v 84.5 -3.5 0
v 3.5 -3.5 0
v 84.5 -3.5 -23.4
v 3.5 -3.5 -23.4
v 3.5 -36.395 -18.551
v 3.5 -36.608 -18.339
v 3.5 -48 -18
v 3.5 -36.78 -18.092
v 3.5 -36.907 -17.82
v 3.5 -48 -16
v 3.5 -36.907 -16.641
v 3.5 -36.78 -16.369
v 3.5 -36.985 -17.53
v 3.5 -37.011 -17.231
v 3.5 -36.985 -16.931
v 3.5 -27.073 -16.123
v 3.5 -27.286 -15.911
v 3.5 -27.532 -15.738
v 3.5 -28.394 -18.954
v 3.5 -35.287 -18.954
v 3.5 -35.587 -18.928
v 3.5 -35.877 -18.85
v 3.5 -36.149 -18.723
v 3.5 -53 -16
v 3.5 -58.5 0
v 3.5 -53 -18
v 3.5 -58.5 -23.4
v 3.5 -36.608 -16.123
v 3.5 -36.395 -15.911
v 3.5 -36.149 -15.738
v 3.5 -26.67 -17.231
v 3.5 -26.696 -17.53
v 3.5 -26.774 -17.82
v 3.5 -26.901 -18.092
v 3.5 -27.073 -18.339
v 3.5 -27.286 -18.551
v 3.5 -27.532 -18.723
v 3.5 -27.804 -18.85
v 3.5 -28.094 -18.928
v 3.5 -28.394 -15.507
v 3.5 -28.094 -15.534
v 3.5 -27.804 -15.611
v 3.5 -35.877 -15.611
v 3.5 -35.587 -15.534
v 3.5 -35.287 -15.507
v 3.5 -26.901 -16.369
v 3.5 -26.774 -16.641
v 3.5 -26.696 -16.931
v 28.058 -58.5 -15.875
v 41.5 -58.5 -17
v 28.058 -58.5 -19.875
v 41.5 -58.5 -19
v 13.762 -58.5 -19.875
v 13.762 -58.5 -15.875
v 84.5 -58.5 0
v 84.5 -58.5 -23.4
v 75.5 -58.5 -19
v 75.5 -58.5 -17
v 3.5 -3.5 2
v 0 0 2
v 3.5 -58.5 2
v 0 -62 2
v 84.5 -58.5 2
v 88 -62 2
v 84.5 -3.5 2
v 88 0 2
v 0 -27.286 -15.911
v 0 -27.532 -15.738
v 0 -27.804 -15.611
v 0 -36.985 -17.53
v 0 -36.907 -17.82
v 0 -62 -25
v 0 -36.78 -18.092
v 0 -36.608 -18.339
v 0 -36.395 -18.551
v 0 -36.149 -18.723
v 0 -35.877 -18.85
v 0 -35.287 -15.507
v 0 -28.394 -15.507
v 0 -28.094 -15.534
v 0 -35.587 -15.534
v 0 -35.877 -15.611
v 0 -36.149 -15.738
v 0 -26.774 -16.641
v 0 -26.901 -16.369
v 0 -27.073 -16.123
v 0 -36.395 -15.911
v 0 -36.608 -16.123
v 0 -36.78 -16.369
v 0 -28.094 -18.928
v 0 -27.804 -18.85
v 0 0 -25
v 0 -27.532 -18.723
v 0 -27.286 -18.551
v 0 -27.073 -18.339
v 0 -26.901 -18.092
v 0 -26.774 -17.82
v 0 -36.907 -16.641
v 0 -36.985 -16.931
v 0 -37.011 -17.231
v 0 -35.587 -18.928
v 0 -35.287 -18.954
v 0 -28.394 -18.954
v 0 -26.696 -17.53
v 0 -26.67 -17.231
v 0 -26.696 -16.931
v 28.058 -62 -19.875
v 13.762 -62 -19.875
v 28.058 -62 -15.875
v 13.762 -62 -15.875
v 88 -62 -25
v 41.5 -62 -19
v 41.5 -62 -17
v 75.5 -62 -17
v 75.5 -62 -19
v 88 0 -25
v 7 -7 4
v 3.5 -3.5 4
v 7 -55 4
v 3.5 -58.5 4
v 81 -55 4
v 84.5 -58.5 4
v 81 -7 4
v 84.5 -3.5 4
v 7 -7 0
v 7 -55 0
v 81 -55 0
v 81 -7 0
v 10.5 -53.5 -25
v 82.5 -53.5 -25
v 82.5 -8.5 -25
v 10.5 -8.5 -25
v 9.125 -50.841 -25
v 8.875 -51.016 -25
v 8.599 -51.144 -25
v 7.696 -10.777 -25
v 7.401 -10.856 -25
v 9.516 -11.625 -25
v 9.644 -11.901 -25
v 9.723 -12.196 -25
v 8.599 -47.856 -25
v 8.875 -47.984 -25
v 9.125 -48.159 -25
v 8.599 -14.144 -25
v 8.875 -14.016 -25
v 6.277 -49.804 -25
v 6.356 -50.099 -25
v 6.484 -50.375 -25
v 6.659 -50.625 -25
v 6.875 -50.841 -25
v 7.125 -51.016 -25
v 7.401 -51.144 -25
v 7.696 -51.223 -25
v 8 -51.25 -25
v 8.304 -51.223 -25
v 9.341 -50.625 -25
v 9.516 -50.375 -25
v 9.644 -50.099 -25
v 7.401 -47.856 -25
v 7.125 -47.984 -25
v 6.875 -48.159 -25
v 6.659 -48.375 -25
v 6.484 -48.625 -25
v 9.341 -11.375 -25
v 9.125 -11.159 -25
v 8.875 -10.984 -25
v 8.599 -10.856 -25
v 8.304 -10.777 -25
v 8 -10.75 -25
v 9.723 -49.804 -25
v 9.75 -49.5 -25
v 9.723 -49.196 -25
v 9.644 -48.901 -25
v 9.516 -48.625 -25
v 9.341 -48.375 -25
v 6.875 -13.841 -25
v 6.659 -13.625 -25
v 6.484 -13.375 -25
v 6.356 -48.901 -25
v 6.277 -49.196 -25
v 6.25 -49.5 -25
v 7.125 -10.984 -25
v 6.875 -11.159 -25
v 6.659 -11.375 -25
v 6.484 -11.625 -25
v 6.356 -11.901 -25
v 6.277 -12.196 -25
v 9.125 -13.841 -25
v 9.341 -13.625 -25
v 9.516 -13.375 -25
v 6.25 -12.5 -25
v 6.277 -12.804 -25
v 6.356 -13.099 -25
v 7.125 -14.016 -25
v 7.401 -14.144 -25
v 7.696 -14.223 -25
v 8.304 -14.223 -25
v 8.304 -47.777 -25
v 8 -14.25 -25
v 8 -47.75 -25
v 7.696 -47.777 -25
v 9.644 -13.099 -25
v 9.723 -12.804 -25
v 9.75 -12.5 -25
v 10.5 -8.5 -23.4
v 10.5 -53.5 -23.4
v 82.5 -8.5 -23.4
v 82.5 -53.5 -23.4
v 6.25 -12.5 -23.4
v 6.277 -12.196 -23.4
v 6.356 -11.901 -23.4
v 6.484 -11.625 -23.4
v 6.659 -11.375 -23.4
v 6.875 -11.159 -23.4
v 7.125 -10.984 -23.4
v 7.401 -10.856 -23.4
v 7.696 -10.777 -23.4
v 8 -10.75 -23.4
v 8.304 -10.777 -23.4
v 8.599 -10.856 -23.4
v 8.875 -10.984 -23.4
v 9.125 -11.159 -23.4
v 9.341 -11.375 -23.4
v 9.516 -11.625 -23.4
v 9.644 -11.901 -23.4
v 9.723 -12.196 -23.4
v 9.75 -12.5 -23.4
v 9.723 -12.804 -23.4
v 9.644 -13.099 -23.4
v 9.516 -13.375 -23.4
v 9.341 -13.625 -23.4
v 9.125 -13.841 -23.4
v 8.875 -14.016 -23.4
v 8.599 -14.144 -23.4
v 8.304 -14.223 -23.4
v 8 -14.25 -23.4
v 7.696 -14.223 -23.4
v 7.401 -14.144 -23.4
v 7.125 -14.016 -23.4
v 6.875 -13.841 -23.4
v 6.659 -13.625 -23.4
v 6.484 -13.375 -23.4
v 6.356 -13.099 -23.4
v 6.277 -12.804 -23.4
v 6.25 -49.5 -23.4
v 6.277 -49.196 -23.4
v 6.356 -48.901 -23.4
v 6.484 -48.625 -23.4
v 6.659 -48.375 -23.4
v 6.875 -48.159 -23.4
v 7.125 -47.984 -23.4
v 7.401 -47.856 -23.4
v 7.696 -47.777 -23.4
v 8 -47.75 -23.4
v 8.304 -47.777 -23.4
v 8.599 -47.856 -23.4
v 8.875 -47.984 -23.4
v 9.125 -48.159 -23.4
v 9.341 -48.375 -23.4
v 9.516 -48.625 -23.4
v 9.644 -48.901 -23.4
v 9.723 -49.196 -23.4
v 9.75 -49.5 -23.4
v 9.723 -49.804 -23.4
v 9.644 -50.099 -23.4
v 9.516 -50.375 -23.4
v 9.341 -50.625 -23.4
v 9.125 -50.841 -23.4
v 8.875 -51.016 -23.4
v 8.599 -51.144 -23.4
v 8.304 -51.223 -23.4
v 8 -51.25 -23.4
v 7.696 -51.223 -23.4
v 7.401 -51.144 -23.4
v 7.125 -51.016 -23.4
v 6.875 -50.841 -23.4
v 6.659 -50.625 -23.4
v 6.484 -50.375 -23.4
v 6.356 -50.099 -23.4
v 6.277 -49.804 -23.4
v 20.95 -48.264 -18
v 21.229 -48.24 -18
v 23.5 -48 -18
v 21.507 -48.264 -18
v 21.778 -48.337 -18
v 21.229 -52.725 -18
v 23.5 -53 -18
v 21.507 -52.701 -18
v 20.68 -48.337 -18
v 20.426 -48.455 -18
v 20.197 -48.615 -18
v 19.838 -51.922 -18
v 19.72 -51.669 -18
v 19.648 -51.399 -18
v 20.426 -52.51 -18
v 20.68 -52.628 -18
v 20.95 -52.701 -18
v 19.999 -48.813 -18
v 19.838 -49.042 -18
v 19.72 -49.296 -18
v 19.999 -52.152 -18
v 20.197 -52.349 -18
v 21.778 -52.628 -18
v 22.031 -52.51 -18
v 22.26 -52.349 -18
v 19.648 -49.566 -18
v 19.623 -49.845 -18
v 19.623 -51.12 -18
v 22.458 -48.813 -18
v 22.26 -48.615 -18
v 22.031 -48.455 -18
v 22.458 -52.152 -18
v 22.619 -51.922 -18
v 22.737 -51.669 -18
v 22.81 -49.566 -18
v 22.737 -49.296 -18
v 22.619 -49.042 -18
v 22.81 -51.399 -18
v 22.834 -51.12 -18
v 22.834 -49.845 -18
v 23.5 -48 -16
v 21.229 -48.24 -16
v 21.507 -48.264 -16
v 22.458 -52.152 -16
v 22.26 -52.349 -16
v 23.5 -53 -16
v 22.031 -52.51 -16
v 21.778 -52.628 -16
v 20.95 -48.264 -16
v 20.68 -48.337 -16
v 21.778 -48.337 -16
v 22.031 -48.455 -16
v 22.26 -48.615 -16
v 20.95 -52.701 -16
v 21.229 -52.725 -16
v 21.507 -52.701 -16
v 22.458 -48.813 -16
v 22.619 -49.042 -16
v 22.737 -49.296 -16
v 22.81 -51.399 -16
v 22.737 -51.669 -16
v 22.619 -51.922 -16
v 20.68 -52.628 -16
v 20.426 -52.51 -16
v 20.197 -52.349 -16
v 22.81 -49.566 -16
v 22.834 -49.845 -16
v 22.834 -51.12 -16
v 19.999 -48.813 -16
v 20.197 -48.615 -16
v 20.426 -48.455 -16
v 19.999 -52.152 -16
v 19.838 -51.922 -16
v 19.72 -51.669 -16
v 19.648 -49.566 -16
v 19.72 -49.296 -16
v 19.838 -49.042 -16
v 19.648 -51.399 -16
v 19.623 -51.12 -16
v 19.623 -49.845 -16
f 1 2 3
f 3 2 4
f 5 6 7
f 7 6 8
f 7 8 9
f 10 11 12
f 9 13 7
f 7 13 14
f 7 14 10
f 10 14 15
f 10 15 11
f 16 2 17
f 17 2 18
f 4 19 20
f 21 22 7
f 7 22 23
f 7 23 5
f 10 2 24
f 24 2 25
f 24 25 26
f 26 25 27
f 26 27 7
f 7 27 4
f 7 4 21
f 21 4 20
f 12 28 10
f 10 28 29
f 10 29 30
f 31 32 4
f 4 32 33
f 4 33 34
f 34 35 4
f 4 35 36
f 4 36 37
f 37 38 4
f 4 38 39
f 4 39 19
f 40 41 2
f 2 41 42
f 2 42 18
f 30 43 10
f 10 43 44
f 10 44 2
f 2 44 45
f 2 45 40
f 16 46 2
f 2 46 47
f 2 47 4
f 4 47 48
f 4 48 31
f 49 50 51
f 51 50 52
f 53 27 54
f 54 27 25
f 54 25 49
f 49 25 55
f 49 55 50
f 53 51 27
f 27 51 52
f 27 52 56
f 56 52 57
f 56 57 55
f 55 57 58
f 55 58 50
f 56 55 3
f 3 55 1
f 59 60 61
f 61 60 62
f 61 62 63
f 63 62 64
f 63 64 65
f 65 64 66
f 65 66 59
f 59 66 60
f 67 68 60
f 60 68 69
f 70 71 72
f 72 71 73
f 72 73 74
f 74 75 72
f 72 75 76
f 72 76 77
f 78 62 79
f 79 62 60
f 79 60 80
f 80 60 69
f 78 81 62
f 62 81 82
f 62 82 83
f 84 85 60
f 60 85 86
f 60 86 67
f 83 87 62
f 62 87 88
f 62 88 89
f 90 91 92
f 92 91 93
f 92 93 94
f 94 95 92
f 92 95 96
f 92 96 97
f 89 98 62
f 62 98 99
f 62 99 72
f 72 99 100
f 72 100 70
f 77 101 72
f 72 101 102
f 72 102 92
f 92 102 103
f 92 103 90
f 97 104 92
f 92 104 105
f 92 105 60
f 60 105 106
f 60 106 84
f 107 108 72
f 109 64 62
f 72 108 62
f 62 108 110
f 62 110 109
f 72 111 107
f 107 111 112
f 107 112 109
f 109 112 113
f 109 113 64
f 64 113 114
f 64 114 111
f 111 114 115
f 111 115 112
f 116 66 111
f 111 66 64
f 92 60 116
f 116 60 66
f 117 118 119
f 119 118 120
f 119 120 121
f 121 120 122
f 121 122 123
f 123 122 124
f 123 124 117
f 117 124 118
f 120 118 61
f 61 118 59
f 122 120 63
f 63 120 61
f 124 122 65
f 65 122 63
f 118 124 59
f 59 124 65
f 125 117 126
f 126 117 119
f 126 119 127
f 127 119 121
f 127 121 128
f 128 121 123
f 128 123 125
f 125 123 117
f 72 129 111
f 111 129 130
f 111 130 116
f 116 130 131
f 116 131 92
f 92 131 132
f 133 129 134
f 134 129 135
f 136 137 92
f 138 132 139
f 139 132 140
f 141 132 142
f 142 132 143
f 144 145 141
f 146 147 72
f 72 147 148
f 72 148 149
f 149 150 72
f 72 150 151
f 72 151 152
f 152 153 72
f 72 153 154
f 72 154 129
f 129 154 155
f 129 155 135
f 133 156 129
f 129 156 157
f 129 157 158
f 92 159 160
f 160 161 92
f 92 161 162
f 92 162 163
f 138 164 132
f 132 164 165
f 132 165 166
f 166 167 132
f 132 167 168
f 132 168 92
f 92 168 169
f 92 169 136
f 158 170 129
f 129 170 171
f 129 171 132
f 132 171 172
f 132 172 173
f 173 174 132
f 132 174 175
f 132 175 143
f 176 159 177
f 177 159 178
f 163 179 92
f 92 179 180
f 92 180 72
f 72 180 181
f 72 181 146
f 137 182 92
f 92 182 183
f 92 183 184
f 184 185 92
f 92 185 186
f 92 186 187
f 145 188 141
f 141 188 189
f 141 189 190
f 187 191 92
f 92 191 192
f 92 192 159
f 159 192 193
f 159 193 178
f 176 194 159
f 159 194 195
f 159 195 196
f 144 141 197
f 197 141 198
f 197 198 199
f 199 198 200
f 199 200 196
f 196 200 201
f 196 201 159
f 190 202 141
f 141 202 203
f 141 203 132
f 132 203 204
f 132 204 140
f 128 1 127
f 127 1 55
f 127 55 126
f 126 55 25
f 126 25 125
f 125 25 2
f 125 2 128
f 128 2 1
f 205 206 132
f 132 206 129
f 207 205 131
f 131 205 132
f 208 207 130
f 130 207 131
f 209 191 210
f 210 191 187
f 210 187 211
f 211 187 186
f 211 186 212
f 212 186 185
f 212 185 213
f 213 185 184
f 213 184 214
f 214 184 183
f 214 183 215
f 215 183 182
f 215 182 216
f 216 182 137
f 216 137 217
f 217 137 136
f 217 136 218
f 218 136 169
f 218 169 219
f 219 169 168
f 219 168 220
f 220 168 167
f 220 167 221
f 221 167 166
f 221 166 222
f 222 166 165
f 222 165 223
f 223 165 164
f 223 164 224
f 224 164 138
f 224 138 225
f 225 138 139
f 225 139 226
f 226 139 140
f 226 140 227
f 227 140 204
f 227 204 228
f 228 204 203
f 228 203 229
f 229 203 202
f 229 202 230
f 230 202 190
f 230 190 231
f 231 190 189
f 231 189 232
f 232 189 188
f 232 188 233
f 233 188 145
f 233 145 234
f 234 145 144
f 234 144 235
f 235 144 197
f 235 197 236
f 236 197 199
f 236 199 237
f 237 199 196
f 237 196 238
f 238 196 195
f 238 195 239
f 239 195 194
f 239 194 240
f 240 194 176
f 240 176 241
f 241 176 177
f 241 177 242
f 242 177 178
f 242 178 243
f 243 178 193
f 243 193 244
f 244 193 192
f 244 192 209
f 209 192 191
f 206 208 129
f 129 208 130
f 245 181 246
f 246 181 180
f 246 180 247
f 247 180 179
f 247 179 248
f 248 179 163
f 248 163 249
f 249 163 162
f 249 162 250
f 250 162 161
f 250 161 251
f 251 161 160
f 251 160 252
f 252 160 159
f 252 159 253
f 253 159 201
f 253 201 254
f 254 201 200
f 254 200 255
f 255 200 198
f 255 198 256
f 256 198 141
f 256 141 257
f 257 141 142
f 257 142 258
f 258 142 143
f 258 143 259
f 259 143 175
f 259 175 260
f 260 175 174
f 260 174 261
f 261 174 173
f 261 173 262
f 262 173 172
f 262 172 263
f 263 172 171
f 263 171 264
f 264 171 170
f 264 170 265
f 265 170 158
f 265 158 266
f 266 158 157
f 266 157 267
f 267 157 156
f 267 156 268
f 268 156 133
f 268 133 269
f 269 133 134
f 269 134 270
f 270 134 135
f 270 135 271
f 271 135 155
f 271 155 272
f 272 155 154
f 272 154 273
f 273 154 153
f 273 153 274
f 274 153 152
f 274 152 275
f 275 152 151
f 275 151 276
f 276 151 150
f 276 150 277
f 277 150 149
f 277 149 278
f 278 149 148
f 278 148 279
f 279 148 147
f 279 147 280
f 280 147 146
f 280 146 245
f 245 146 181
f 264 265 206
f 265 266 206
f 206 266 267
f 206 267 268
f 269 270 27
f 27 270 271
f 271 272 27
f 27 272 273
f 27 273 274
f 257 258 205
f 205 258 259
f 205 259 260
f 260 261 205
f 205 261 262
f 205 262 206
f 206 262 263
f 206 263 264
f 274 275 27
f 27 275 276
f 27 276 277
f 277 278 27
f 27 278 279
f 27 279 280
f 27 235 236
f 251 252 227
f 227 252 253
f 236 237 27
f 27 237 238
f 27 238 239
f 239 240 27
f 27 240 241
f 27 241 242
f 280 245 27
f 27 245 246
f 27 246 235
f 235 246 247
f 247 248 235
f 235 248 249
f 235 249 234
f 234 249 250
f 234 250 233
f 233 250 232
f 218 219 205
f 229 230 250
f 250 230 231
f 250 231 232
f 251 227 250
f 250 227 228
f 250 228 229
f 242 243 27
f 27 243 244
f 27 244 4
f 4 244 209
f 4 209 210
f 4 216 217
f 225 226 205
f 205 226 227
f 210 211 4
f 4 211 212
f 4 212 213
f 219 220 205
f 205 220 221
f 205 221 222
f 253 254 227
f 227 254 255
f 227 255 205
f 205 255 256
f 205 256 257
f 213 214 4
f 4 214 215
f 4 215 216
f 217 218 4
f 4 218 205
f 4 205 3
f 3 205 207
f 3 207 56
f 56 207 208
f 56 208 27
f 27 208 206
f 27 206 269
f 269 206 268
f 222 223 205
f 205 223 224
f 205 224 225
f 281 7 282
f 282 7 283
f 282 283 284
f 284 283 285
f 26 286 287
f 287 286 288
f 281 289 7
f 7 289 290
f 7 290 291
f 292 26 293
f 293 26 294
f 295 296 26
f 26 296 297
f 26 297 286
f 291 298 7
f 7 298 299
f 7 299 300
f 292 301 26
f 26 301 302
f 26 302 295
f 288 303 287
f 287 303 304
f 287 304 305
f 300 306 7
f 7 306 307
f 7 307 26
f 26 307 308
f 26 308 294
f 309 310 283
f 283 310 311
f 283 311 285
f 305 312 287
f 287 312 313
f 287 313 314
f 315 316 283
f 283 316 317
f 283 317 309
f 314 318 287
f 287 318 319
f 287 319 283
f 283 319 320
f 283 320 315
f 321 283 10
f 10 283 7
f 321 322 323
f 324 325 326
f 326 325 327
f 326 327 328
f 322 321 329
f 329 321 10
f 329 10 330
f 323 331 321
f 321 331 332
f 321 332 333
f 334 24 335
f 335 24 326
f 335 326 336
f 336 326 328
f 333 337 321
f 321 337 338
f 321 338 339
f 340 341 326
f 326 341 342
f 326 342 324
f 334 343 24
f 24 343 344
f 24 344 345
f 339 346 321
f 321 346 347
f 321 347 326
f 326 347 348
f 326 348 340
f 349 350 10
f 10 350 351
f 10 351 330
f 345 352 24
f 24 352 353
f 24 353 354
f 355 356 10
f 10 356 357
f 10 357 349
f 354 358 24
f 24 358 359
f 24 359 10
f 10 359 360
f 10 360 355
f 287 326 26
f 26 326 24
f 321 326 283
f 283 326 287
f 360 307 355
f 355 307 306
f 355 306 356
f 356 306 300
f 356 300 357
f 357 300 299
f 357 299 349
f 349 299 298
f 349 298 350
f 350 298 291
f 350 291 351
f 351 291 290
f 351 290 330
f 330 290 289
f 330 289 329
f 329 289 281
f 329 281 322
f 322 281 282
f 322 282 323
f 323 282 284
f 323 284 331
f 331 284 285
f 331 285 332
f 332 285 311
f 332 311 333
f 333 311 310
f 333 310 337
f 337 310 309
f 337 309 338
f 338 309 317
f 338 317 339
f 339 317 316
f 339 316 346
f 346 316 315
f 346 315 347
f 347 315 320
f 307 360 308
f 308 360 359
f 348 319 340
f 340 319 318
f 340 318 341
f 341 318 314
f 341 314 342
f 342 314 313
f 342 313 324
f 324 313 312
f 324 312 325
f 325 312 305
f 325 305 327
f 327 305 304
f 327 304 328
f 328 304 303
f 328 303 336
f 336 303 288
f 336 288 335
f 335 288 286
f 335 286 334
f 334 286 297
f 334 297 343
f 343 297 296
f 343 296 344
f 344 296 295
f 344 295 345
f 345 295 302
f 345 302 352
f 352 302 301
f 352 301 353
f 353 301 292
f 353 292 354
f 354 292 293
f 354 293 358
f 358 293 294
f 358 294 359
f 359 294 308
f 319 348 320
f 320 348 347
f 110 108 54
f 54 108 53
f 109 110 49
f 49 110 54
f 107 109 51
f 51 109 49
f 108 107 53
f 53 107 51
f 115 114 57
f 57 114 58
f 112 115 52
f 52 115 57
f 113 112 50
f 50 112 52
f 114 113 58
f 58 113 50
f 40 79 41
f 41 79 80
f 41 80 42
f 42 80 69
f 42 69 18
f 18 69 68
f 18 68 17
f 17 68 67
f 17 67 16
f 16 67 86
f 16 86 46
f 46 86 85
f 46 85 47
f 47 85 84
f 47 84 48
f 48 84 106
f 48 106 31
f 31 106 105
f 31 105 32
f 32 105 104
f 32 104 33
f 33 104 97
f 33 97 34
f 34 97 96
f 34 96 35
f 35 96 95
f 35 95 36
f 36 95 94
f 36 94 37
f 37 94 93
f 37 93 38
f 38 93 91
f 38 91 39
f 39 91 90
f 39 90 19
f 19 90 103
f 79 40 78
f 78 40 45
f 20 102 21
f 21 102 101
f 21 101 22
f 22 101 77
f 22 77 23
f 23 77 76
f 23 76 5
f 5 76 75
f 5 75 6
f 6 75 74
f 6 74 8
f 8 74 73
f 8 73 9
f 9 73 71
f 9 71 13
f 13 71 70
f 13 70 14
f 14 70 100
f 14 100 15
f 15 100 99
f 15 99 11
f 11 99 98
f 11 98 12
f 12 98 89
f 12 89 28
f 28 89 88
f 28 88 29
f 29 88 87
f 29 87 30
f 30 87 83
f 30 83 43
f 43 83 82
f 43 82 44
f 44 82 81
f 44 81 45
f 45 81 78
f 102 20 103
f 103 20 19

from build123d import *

# Parameters (mm, degrees)
SKETCH_1_W          = 88
SKETCH_1_H          = 62
EXTRUDE_1_DEPTH     = 2
SKETCH_2_W          = 81
SKETCH_2_H          = 55
SKETCH_2_W_2        = 74
SKETCH_2_H_2        = 48
EXTRUDE_2_DEPTH     = 2
SKETCH_3_W          = 88
SKETCH_3_H          = 62
SKETCH_3_W_2        = 81
SKETCH_3_H_2        = 55
EXTRUDE_3_DEPTH     = 25
SKETCH_5_W          = 74
SKETCH_5_H          = 48
CUT_EXTRUDE_1_DEPTH = 20
SKETCH_6_W          = 7
SKETCH_6_H          = 45
SKETCH_6_R          = 1.75
SKETCH_6_W_2        = 2
EXTRUDE_4_DEPTH     = 1.6
SKETCH_8_W          = 2
SKETCH_8_H          = 5
EXTRUDE_5_DEPTH     = 20
CUT_EXTRUDE_2_DEPTH = 17
SKETCH_7_W          = 34
SKETCH_7_H          = 2
SKETCH_7_W_2        = 14.295678294
SKETCH_7_H_2        = 4
CUT_EXTRUDE_3_DEPTH = 5
CUT_EXTRUDE_4_DEPTH = 5


with BuildPart() as part:
    # 草图1 → 凸台-拉伸1 (new body)
    with BuildSketch(Plane.XY):
        with Locations((44, -31)):
            Rectangle(SKETCH_1_W, SKETCH_1_H)
    extrude(amount=EXTRUDE_1_DEPTH)

    # 草图2 → 凸台-拉伸2 (add)
    with BuildSketch(Plane.XY.offset(2)):
        with Locations((44, -31)):
            Rectangle(SKETCH_2_W, SKETCH_2_H)
        with Locations((44, -31)):
            Rectangle(SKETCH_2_W_2, SKETCH_2_H_2, mode=Mode.SUBTRACT)
    extrude(amount=EXTRUDE_2_DEPTH)

    # 草图3 → 凸台-拉伸3 (add)
    with BuildSketch(Plane(origin=(0, 0, 0), x_dir=(-1, 0, 0), z_dir=(0, 0, -1))):
        with Locations((-44, -31)):
            Rectangle(SKETCH_3_W, SKETCH_3_H)
        with Locations((-44, -31)):
            Rectangle(SKETCH_3_W_2, SKETCH_3_H_2, mode=Mode.SUBTRACT)
    extrude(amount=EXTRUDE_3_DEPTH)

    # 草图5 → 切除-拉伸1 (cut)
    with BuildSketch(Plane.XY.offset(2)):
        with Locations((44, -31)):
            Rectangle(SKETCH_5_W, SKETCH_5_H)
    extrude(amount=-CUT_EXTRUDE_1_DEPTH, mode=Mode.SUBTRACT)

    # 草图6 → 凸台-拉伸4 (add)
    with BuildSketch(Plane(origin=(0, 0, -25), x_dir=(-1, 0, 0), z_dir=(0, 0, -1))):
        Polygon((-3.5, -3.5), (-84.5, -3.5), (-84.5, -8.5), (-82.5, -8.5), (-10.5, -8.5), (-3.5, -8.5), align=None)
        with Locations((-7, -31)):
            Rectangle(SKETCH_6_W, SKETCH_6_H)
        with Locations((-8, -49.5)):
            Circle(SKETCH_6_R, mode=Mode.SUBTRACT)
        with Locations((-8, -12.5)):
            Circle(SKETCH_6_R, mode=Mode.SUBTRACT)
        with Locations((-83.5, -31)):
            Rectangle(SKETCH_6_W_2, SKETCH_6_H)
        Polygon((-82.5, -53.5), (-84.5, -53.5), (-84.5, -58.5), (-3.5, -58.5), (-3.5, -53.5), (-10.5, -53.5), align=None)
    extrude(amount=-EXTRUDE_4_DEPTH)

    # 草图8 → 凸台-拉伸5 (add)
    with BuildSketch(Plane(origin=(3.5, 0, 0), x_dir=(0, 0, -1), z_dir=(1, 0, 0))):
        with Locations((17, -50.5)):
            Rectangle(SKETCH_8_W, SKETCH_8_H)
    extrude(amount=EXTRUDE_5_DEPTH)

    # 草图10 → 切除-拉伸2 (cut)
    with BuildSketch(Plane(origin=(0, 0, -18), x_dir=(-1, 0, 0), z_dir=(0, 0, -1))):
        with BuildLine():
            Line((-19.62339277, -49.845001647), (-19.62339277, -51.119762416))
            ThreePointArc((-19.62339277, -51.119762416), (-21.228647072, -52.725016718), (-22.833901374, -51.119762416))
            Line((-22.833901374, -51.119762416), (-22.833901374, -49.845001647))
            ThreePointArc((-22.833901374, -49.845001647), (-21.228647072, -48.239747346), (-19.62339277, -49.845001647))
        make_face()
    extrude(amount=-CUT_EXTRUDE_2_DEPTH, mode=Mode.SUBTRACT)

    # 草图7 → 切除-拉伸3 (cut)
    with BuildSketch(Plane.XZ.offset(62)):
        with Locations((58.5, -18)):
            Rectangle(SKETCH_7_W, SKETCH_7_H)
        with Locations((20.909824804, -17.875130222)):
            Rectangle(SKETCH_7_W_2, SKETCH_7_H_2)
    extrude(amount=-CUT_EXTRUDE_3_DEPTH, mode=Mode.SUBTRACT)

    # 草图11 → 切除-拉伸4 (cut)
    with BuildSketch(Plane.ZY):
        with BuildLine():
            Line((-15.507327091, -28.393704354), (-15.507327091, -35.287349512))
            ThreePointArc((-15.507327091, -35.287349512), (-17.230738381, -37.010760802), (-18.954149671, -35.287349512))
            Line((-18.954149671, -35.287349512), (-18.954149671, -28.393704354))
            ThreePointArc((-18.954149671, -28.393704354), (-17.230738381, -26.670293064), (-15.507327091, -28.393704354))
        make_face()
    extrude(amount=-CUT_EXTRUDE_4_DEPTH, mode=Mode.SUBTRACT)


solid = part.part
